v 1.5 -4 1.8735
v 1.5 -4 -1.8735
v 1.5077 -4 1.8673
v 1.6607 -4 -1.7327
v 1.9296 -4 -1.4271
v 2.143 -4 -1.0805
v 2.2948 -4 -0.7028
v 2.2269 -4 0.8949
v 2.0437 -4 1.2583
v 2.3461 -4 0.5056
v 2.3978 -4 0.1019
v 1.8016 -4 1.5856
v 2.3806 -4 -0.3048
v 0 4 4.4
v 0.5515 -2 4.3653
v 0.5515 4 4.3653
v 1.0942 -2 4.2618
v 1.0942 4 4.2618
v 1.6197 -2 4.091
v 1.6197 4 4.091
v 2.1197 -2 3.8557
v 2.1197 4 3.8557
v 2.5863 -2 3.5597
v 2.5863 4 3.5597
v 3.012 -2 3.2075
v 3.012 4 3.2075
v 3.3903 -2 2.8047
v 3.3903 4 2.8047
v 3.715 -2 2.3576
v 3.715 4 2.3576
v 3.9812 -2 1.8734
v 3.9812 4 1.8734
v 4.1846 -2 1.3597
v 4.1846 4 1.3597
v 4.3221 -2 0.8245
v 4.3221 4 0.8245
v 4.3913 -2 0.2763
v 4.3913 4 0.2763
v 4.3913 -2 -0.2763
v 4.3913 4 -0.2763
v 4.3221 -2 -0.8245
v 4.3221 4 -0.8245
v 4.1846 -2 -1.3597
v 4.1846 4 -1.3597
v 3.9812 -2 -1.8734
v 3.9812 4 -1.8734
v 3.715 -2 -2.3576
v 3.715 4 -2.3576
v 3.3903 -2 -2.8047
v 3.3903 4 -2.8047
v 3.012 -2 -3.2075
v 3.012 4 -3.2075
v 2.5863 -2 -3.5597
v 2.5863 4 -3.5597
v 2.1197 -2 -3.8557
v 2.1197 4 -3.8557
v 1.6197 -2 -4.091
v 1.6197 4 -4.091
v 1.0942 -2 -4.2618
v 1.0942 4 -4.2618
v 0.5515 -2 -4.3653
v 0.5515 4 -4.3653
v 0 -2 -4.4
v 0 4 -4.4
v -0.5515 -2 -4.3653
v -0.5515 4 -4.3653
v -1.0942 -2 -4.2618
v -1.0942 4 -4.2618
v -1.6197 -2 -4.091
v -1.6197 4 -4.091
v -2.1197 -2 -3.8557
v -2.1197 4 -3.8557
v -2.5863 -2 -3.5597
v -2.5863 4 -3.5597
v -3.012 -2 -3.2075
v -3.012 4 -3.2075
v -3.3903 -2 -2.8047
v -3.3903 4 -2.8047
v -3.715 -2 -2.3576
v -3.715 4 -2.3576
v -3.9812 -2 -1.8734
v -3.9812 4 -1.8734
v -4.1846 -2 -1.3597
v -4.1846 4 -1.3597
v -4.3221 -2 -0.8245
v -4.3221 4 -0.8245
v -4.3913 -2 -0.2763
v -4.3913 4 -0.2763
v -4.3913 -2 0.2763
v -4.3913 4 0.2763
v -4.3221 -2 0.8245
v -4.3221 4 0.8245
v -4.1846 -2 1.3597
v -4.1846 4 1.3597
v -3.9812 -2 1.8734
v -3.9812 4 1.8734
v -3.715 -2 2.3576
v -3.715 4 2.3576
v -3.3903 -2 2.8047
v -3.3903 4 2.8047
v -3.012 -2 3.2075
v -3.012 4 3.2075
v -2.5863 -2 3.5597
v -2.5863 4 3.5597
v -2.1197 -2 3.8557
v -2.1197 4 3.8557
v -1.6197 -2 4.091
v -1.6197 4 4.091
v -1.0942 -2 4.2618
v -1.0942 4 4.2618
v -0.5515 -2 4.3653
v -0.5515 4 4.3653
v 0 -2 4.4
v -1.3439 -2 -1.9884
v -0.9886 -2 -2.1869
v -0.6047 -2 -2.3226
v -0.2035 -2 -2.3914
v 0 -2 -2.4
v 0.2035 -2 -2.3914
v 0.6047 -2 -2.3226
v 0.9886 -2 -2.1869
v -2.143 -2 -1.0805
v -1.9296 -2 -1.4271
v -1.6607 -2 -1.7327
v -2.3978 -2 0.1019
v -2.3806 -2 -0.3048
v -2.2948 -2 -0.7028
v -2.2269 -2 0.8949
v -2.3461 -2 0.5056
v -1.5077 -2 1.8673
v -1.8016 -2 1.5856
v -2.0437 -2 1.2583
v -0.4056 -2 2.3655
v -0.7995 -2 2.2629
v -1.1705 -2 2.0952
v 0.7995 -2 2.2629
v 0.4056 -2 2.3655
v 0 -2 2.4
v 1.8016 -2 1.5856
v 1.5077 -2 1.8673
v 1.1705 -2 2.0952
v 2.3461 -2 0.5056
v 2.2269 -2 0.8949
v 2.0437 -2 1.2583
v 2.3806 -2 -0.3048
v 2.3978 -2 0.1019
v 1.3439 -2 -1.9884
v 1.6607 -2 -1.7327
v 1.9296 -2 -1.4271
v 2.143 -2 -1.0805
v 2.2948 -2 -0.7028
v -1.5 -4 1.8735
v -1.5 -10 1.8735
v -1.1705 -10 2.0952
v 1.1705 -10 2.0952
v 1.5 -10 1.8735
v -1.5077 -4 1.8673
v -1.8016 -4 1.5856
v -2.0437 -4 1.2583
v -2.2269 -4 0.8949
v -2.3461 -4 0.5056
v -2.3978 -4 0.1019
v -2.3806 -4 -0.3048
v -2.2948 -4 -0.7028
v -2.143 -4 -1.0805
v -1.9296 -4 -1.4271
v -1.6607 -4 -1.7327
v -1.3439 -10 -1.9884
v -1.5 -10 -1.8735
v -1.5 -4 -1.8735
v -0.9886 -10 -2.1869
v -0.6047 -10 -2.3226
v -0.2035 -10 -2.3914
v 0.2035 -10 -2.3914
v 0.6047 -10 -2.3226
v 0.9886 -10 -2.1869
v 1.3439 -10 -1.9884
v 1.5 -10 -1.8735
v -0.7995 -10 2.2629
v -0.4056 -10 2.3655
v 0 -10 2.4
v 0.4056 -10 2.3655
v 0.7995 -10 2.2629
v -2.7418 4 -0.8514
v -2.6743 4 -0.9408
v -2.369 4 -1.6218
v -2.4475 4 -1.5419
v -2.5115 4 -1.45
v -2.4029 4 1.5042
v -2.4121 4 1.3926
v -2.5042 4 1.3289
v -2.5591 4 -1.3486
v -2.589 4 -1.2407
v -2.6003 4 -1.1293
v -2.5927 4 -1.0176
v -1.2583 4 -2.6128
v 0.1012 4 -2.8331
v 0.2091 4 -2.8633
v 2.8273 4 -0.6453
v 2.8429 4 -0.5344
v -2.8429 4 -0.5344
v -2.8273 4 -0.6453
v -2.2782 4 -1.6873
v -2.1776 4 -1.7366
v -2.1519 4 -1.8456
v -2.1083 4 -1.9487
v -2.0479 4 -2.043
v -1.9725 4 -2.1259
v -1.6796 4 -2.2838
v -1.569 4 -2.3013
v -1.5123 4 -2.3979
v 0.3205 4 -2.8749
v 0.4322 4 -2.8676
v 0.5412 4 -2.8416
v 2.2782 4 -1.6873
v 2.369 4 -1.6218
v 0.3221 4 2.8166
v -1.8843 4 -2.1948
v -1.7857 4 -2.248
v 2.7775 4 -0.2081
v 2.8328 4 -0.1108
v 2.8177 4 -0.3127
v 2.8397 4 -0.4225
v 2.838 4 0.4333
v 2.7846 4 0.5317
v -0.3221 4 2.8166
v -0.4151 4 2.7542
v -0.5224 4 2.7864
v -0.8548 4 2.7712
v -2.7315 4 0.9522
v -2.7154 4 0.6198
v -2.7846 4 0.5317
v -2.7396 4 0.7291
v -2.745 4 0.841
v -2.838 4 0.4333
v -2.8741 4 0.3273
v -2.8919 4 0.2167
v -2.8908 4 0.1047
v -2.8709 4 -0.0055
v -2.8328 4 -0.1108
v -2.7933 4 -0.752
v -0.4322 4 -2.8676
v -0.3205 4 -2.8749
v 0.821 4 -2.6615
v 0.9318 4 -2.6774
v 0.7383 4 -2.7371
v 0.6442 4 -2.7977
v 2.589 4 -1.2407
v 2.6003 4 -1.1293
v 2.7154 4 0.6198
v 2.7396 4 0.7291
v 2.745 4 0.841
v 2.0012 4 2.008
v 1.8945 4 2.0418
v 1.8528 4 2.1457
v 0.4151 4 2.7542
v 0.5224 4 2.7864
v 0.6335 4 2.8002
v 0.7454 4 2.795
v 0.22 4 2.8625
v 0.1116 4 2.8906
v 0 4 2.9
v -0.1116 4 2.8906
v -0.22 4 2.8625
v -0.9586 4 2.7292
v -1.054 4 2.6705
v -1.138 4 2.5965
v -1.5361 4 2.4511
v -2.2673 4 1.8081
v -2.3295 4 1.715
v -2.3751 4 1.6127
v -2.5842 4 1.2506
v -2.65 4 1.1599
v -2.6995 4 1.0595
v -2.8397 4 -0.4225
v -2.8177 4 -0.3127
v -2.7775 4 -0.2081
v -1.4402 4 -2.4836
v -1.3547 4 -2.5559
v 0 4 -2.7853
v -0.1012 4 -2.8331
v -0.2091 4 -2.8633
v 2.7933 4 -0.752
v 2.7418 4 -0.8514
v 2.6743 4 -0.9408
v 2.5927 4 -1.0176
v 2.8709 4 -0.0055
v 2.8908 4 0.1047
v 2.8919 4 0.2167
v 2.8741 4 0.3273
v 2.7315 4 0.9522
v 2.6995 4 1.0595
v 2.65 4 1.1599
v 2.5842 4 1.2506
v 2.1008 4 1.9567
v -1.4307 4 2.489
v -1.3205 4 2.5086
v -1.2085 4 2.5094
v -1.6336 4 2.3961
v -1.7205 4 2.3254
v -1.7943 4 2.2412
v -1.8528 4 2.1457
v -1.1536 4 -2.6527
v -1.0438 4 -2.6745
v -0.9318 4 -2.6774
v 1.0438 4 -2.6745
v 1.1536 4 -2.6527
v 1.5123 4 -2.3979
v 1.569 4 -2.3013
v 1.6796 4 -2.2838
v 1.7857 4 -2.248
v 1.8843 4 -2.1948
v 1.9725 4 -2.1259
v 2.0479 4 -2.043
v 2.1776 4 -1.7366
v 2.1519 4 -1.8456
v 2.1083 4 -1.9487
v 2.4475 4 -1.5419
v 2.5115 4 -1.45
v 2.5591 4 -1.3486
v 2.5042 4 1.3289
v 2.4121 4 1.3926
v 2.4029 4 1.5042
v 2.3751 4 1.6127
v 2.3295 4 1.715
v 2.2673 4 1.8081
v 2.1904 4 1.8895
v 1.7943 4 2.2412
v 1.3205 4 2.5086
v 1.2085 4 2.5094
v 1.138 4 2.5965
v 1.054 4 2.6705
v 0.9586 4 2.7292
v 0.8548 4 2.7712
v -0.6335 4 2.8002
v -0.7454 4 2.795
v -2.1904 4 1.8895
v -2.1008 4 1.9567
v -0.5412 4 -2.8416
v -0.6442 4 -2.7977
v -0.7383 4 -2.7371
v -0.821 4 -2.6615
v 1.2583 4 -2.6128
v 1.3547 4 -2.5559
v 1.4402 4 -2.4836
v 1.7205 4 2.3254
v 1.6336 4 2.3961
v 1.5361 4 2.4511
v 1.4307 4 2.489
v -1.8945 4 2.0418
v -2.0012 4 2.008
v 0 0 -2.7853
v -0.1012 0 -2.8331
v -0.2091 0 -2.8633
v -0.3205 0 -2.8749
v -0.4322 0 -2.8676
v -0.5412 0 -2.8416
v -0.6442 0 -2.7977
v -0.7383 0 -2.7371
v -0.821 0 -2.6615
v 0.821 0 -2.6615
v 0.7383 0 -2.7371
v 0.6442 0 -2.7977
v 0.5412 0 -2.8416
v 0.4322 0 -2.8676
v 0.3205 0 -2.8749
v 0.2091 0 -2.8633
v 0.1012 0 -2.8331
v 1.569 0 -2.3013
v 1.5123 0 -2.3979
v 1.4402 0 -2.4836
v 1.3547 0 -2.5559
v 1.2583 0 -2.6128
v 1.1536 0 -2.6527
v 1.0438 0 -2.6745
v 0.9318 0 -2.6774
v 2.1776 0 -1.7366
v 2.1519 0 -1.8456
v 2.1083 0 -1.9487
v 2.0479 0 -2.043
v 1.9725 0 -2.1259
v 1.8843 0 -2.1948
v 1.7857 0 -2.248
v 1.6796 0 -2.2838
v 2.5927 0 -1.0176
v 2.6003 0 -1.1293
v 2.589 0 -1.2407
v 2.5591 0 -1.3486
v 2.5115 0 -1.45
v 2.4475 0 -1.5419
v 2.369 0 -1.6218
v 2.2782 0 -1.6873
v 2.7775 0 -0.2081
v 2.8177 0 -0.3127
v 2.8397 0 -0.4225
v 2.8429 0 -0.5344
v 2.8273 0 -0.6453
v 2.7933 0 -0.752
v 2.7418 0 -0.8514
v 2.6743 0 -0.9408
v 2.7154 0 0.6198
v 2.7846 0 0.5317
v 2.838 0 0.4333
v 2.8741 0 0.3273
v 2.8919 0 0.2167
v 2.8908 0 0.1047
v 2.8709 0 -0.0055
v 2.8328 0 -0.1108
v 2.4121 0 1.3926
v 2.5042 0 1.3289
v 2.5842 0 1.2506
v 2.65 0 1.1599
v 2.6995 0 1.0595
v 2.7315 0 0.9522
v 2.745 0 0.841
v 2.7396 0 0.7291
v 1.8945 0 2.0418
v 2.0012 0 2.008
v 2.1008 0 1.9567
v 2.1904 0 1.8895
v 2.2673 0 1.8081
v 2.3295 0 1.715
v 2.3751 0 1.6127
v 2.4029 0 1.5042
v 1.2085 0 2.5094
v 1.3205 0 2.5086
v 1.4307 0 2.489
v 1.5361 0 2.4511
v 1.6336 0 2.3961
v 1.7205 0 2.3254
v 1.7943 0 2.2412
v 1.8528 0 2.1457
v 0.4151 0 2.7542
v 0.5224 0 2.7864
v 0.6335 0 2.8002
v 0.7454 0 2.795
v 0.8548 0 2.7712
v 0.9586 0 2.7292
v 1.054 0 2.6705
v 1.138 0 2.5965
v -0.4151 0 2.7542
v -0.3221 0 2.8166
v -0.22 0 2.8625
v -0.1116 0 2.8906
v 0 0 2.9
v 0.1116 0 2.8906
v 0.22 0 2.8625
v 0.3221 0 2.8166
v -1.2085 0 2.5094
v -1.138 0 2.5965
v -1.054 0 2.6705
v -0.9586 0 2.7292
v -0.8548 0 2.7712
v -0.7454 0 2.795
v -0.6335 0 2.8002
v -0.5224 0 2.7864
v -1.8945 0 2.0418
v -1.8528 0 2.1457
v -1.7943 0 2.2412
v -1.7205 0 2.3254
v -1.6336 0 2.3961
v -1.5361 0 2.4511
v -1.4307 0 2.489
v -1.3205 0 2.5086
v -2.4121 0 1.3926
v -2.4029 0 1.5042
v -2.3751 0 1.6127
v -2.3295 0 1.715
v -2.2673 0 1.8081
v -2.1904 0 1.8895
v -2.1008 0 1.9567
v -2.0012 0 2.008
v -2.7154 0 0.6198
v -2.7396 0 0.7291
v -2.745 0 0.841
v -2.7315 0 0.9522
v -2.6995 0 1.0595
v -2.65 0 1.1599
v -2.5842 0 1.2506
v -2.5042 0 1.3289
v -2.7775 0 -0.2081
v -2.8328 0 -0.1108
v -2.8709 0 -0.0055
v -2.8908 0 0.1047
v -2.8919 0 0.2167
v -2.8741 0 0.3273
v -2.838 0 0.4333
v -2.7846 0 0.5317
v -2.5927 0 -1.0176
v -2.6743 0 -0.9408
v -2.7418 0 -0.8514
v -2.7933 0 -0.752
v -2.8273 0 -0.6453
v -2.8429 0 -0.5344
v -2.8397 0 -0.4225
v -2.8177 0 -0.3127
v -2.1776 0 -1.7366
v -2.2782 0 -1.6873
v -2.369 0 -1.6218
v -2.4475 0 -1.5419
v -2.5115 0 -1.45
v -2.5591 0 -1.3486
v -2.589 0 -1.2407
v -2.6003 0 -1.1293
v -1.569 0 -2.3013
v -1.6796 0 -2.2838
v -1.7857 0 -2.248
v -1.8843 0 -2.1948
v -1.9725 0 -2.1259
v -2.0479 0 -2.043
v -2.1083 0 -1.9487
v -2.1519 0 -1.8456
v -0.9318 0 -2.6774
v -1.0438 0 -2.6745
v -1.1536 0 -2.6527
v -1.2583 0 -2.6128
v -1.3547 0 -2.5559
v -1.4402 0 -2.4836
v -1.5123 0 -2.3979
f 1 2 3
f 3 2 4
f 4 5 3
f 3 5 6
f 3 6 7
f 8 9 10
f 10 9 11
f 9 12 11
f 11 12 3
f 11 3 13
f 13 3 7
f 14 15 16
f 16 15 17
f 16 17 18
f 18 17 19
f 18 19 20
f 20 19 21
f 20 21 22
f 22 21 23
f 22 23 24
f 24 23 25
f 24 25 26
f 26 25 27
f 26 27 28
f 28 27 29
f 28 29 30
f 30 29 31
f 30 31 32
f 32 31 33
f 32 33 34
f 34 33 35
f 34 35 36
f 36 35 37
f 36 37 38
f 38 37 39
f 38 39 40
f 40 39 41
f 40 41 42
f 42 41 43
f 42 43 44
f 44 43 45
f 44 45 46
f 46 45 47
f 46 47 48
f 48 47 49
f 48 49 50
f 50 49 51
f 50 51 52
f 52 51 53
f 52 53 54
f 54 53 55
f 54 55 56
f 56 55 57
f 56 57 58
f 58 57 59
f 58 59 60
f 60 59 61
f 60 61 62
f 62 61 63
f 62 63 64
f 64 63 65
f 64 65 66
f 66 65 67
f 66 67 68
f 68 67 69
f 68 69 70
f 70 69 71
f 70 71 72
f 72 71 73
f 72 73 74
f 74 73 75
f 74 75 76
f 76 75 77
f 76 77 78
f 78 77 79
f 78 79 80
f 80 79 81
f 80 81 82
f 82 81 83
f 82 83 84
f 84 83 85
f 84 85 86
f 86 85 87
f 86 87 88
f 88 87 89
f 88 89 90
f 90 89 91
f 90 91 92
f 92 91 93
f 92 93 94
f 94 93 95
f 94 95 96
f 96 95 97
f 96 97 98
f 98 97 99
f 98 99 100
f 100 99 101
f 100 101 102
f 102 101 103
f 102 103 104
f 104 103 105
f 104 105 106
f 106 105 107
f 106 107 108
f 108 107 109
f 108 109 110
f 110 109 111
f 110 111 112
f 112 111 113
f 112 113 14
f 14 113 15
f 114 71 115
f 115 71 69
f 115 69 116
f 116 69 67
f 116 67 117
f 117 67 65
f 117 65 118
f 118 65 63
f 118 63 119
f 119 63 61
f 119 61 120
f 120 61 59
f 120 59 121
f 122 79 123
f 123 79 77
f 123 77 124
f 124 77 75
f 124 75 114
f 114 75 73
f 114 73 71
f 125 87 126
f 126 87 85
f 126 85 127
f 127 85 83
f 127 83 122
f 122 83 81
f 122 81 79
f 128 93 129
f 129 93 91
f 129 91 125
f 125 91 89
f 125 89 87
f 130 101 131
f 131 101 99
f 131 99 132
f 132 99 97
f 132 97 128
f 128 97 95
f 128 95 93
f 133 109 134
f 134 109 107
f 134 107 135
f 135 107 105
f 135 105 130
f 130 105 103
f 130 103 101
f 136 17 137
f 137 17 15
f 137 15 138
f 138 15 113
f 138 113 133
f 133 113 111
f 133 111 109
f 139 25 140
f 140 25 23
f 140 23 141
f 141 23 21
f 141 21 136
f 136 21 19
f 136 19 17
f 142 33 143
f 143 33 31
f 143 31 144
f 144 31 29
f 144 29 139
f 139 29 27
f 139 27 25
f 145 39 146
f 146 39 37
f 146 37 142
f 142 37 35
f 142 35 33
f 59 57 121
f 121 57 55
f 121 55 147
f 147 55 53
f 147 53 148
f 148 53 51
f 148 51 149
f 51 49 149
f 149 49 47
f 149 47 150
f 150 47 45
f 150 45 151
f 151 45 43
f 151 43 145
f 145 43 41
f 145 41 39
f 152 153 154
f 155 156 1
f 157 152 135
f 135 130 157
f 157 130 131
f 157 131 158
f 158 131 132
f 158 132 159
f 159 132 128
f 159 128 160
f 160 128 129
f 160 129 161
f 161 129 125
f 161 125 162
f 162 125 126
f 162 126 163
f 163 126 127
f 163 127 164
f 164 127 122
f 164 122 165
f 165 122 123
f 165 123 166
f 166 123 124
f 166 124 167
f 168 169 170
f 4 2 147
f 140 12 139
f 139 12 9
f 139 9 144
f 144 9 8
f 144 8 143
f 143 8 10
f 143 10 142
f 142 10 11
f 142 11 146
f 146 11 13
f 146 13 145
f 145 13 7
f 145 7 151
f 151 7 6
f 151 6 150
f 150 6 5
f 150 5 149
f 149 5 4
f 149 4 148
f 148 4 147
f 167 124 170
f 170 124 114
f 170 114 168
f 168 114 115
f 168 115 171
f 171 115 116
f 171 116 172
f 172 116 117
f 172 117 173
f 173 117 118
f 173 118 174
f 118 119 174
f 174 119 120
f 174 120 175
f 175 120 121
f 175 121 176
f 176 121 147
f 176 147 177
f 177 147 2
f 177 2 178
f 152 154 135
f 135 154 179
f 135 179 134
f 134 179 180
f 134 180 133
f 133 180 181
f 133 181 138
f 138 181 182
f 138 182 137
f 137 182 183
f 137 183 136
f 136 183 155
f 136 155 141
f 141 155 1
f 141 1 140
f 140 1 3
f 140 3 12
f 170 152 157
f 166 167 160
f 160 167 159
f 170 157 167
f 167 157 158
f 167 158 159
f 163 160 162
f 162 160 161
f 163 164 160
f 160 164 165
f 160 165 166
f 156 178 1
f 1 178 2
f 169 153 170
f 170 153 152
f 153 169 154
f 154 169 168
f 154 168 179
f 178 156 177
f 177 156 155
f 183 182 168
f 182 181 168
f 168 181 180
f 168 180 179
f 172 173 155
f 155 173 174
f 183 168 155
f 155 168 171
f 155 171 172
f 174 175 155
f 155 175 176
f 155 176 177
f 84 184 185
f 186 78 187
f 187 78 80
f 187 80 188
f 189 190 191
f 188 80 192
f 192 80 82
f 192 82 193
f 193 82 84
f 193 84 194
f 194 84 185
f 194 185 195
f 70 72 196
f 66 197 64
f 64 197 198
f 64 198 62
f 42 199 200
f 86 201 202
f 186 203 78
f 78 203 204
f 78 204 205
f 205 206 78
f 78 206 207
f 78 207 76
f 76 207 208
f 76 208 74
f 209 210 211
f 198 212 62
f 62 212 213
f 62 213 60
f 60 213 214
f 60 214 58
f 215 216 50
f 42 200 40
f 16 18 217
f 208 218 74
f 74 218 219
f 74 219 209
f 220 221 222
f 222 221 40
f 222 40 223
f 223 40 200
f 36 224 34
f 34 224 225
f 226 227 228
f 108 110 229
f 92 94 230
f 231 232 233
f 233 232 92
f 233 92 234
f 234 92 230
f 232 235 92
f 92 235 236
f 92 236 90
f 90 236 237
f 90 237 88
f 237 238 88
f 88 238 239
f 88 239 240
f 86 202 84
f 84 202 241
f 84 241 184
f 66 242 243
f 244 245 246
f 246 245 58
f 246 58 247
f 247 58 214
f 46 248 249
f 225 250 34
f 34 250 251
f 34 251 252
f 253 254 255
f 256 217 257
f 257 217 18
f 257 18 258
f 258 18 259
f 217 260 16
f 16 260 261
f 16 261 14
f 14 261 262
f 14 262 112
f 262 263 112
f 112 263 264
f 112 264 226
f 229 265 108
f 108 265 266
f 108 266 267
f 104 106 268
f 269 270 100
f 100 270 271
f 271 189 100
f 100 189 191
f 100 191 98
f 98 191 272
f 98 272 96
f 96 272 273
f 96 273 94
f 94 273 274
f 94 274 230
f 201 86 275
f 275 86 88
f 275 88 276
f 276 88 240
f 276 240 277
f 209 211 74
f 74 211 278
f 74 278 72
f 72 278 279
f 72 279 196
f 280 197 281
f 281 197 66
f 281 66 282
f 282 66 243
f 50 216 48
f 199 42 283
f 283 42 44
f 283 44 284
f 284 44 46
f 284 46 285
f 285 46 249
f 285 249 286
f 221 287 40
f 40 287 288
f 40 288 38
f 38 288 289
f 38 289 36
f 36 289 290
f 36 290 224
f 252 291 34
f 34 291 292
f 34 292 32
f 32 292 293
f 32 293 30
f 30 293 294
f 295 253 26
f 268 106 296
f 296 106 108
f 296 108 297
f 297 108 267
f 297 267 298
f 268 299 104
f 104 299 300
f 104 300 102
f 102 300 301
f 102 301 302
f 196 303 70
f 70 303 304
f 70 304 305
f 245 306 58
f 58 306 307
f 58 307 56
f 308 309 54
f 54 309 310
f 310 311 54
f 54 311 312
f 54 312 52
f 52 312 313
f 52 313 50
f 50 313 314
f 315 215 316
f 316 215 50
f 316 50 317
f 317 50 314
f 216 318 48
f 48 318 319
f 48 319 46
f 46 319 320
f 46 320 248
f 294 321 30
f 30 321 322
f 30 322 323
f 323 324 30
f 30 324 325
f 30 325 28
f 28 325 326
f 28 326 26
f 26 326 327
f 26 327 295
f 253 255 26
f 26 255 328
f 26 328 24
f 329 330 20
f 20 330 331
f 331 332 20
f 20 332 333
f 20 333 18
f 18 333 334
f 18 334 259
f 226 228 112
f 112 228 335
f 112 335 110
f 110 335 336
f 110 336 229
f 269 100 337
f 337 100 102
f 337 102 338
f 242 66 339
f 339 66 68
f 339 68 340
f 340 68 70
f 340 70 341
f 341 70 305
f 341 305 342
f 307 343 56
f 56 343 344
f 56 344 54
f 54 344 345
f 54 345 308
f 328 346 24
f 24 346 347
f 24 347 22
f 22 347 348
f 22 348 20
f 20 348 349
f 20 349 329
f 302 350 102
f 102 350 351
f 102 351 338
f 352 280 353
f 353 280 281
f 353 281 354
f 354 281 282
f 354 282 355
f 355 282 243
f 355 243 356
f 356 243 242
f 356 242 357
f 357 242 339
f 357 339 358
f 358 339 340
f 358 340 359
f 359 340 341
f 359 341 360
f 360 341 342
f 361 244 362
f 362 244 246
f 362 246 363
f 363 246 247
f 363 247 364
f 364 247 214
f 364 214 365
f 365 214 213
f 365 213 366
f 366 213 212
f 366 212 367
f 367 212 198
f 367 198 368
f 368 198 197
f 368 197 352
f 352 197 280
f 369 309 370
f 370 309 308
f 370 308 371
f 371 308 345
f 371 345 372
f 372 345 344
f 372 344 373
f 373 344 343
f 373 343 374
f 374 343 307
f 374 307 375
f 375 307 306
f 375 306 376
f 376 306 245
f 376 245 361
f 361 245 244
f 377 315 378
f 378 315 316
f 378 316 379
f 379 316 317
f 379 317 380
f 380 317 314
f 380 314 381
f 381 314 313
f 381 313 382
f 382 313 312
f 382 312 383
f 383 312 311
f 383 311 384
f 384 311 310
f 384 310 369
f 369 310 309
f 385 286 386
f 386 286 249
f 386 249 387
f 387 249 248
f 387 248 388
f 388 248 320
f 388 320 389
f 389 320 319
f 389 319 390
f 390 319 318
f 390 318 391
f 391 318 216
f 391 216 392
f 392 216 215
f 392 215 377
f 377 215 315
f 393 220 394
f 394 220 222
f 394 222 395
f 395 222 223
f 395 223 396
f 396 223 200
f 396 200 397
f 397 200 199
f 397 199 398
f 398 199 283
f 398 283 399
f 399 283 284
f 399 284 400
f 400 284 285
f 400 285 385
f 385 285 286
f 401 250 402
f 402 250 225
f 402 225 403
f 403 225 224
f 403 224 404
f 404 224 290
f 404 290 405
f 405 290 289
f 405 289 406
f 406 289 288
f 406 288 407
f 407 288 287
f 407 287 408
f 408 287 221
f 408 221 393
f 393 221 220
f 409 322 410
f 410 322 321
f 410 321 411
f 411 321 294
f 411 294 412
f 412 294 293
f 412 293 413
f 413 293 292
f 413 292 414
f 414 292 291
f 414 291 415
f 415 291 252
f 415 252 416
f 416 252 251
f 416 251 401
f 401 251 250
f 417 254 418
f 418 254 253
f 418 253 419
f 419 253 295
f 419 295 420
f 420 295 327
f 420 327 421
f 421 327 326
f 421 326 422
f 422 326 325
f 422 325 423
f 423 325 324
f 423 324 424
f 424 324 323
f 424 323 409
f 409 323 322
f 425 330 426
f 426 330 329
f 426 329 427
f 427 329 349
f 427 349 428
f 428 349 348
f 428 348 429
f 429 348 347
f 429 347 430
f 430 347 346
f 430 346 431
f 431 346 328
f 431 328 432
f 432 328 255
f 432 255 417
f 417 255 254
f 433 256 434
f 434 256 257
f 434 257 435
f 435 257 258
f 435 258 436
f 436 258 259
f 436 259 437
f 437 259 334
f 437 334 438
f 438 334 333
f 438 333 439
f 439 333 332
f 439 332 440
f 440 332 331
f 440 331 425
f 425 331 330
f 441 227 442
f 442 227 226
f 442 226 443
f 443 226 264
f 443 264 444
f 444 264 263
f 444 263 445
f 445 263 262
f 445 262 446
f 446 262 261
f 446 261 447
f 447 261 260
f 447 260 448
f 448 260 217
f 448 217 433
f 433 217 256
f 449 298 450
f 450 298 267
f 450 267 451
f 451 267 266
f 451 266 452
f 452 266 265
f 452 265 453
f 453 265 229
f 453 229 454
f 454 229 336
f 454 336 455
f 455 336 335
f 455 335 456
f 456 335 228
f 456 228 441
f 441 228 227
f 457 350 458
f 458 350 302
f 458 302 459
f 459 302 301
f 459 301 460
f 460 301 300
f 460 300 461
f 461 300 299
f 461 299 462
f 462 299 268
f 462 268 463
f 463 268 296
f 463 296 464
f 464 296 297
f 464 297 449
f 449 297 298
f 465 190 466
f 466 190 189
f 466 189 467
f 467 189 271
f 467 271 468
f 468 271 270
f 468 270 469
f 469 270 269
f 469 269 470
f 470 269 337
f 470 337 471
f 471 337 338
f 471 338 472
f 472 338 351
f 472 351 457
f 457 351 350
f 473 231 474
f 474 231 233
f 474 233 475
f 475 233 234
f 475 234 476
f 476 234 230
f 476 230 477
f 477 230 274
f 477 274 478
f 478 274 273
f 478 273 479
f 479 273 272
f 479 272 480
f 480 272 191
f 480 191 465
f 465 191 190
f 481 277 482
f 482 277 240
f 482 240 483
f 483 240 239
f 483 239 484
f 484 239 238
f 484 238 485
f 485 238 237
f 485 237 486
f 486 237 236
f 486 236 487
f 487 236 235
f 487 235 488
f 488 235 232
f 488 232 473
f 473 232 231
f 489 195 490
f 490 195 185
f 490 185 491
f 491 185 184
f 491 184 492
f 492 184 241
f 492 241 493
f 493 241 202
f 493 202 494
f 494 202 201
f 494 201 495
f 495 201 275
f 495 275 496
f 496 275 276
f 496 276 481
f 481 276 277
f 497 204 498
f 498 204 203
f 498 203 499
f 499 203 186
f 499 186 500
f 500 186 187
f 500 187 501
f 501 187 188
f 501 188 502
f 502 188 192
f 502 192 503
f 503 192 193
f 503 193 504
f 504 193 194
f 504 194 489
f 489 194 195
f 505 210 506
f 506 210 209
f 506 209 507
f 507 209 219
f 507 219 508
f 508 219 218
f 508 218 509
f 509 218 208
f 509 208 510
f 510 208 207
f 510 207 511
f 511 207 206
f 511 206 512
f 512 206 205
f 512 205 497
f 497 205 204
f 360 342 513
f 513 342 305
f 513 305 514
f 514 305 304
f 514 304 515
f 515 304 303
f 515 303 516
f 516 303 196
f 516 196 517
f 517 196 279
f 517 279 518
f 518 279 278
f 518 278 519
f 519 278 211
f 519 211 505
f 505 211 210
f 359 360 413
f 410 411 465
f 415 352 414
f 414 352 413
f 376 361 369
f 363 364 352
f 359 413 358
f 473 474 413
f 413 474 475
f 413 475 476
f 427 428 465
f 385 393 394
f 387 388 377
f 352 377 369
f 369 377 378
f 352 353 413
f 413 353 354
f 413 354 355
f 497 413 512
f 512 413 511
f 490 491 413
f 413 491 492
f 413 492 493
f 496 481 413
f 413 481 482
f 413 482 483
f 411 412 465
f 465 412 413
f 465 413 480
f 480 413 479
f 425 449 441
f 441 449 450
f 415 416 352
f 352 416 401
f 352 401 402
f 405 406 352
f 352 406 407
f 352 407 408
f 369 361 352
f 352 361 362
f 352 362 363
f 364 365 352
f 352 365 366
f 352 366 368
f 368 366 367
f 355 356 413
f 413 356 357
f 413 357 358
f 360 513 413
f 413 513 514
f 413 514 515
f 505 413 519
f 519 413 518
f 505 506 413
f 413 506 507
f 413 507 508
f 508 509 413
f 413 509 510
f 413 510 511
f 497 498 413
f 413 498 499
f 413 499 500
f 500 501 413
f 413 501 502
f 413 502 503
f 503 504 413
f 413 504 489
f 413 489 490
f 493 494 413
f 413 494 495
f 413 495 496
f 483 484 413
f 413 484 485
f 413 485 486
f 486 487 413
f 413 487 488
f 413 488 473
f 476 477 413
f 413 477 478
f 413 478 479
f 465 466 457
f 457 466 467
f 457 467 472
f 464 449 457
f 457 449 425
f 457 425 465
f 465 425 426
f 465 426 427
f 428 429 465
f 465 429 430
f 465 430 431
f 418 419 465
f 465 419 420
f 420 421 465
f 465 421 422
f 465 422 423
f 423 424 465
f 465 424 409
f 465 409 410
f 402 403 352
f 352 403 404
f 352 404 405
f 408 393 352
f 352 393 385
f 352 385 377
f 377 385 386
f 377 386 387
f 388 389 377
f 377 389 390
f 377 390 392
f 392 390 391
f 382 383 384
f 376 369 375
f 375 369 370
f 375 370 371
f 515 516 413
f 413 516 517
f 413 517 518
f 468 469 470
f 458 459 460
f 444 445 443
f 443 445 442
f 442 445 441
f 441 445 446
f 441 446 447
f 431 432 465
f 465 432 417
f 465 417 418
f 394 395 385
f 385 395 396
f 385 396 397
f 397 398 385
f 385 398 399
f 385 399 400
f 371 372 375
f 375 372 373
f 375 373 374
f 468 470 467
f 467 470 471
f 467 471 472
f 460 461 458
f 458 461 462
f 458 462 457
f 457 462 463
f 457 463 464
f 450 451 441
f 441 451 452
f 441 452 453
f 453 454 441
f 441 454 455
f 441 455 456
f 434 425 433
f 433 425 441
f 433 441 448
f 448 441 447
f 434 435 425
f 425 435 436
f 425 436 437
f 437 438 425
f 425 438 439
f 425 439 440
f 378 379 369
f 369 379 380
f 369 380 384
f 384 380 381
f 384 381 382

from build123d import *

# Parameters (mm, degrees)
SKETCH1_R           = 3.95
BOSS_EXTRUDE1_DEPTH = 4
SKETCH2_R           = 4.4
BOSS_EXTRUDE2_DEPTH = 2
SKETCH4_R           = 2.4
BOSS_EXTRUDE3_DEPTH = 2
BOSS_EXTRUDE4_DEPTH = 6
SKETCH6_R           = 4.4
SKETCH6_R_2         = 3.95
BOSS_EXTRUDE5_DEPTH = 4
CUT_EXTRUDE1_START  = -4
CUT_EXTRUDE1_DEPTH  = 4
CUT_EXTRUDE2_START  = -4
CUT_EXTRUDE2_DEPTH  = 4
BOSS_EXTRUDE6_START = -4
BOSS_EXTRUDE6_DEPTH = 4


with BuildPart() as part:
    # Sketch1 → Boss-Extrude1 (new body)
    with BuildSketch(Plane(origin=(0, 0, 0), x_dir=(1, 0, 0), z_dir=(0, 1, 0))):
        Circle(SKETCH1_R)
        with BuildLine():
            ThreePointArc((-0.166646614, 2.345141313), (-0.092401566, 2.286261662), (0, 2.2652595))
            ThreePointArc((0, 2.2652595), (0.092401566, 2.286261662), (0.166646614, 2.345141313))
            ThreePointArc((0.166646614, 2.345141313), (0.365153552, 2.422635524), (0.531999564, 2.290073216))
            ThreePointArc((0.531999564, 2.290073216), (0.585591031, 2.211925311), (0.667696959, 2.164620376))
            ThreePointArc((0.667696959, 2.164620376), (0.762183879, 2.157453631), (0.850485509, 2.191833312))
            ThreePointArc((0.850485509, 2.191833312), (1.063015161, 2.207373726), (1.183375246, 2.031522064))
            ThreePointArc((1.183375246, 2.031522064), (1.211551295, 1.941049689), (1.276066113, 1.871645232))
            ThreePointArc((1.276066113, 1.871645232), (1.364242809, 1.836946378), (1.458755034, 1.843771303))
            ThreePointArc((1.458755034, 1.843771303), (1.666423208, 1.795977086), (1.729602845, 1.592461261))
            ThreePointArc((1.729602845, 1.592461261), (1.72985991, 1.497703284), (1.771051193, 1.412366197))
            ThreePointArc((1.771051193, 1.412366197), (1.845082779, 1.353218377), (1.937407773, 1.331882123))
            ThreePointArc((1.937407773, 1.331882123), (2.121762239, 1.225), (2.12214764, 1.011903287))
            ThreePointArc((2.12214764, 1.011903287), (2.094462881, 0.92127937), (2.108670602, 0.827592226))
            ThreePointArc((2.108670602, 0.827592226), (2.161979047, 0.749250985), (2.243913329, 0.701649371))
            ThreePointArc((2.243913329, 0.701649371), (2.388573385, 0.545176288), (2.326130305, 0.341433266))
            ThreePointArc((2.326130305, 0.341433266), (2.272963633, 0.262995741), (2.258925375, 0.169283054))
            ThreePointArc((2.258925375, 0.169283054), (2.286773988, 0.078709355), (2.351037339, 0.009071994))
            ThreePointArc((2.351037339, 0.009071994), (2.443149303, -0.183088729), (2.323426084, -0.3593746))
            ThreePointArc((2.323426084, -0.3593746), (2.249501592, -0.418656214), (2.208464714, -0.504067659))
            ThreePointArc((2.208464714, -0.504067659), (2.208379026, -0.598825947), (2.249261363, -0.68431147))
            ThreePointArc((2.249261363, -0.68431147), (2.280640684, -0.89508551), (2.114275259, -1.028250455))
            ThreePointArc((2.114275259, -1.028250455), (2.026161462, -1.063108727), (1.961772273, -1.13262975))
            ThreePointArc((1.961772273, -1.13262975), (1.933759896, -1.223152935), (1.947628645, -1.316890857))
            ThreePointArc((1.947628645, -1.316890857), (1.915487132, -1.527550015), (1.717261799, -1.605761745))
            ThreePointArc((1.717261799, -1.605761745), (1.622787995, -1.613099364), (1.540767756, -1.660552716))
            ThreePointArc((1.540767756, -1.660552716), (1.487317713, -1.738797417), (1.472940575, -1.832458712))
            ThreePointArc((1.472940575, -1.832458712), (1.380134142, -2.024284997), (1.167662092, -2.040594058))
            ThreePointArc((1.167662092, -2.040594058), (1.075222693, -2.019759044), (0.982859262, -2.040928287))
            ThreePointArc((0.982859262, -2.040928287), (0.908720824, -2.099942118), (0.86737527, -2.185204569))
            ThreePointArc((0.86737527, -2.185204569), (0.722150177, -2.341153374), (0.514310485, -2.294110633))
            ThreePointArc((0.514310485, -2.294110633), (0.432119136, -2.246954269), (0.337619409, -2.239958423))
            ThreePointArc((0.337619409, -2.239958423), (0.249380102, -2.274497747), (0.184739867, -2.343785411))
            ThreePointArc((0.184739867, -2.343785411), (0, -2.45), (-0.184739867, -2.343785411))
            ThreePointArc((-0.184739867, -2.343785411), (-0.249380102, -2.274497747), (-0.337619409, -2.239958423))
            ThreePointArc((-0.337619409, -2.239958423), (-0.432119136, -2.246954269), (-0.514310485, -2.294110633))
            ThreePointArc((-0.514310485, -2.294110633), (-0.722150177, -2.341153374), (-0.86737527, -2.185204569))
            ThreePointArc((-0.86737527, -2.185204569), (-0.908720824, -2.099942118), (-0.982859262, -2.040928287))
            ThreePointArc((-0.982859262, -2.040928287), (-1.075222693, -2.019759044), (-1.167662092, -2.040594058))
            ThreePointArc((-1.167662092, -2.040594058), (-1.380134142, -2.024284997), (-1.472940575, -1.832458712))
            ThreePointArc((-1.472940575, -1.832458712), (-1.487317713, -1.738797417), (-1.540767756, -1.660552716))
            ThreePointArc((-1.540767756, -1.660552716), (-1.622787995, -1.613099364), (-1.717261799, -1.605761745))
            ThreePointArc((-1.717261799, -1.605761745), (-1.915487132, -1.527550015), (-1.947628645, -1.316890857))
            ThreePointArc((-1.947628645, -1.316890857), (-1.933759896, -1.223152935), (-1.961772273, -1.13262975))
            ThreePointArc((-1.961772273, -1.13262975), (-2.026161462, -1.063108727), (-2.114275259, -1.028250455))
            ThreePointArc((-2.114275259, -1.028250455), (-2.280640684, -0.89508551), (-2.249261363, -0.68431147))
            ThreePointArc((-2.249261363, -0.68431147), (-2.208379026, -0.598825947), (-2.208464714, -0.504067659))
            ThreePointArc((-2.208464714, -0.504067659), (-2.249501592, -0.418656214), (-2.323426084, -0.3593746))
            ThreePointArc((-2.323426084, -0.3593746), (-2.443149303, -0.183088729), (-2.351037339, 0.009071994))
            ThreePointArc((-2.351037339, 0.009071994), (-2.286773988, 0.078709355), (-2.258925375, 0.169283054))
            ThreePointArc((-2.258925375, 0.169283054), (-2.272963633, 0.262995741), (-2.326130305, 0.341433266))
            ThreePointArc((-2.326130305, 0.341433266), (-2.388573385, 0.545176288), (-2.243913329, 0.701649371))
            ThreePointArc((-2.243913329, 0.701649371), (-2.161979047, 0.749250985), (-2.108670602, 0.827592226))
            ThreePointArc((-2.108670602, 0.827592226), (-2.094462881, 0.92127937), (-2.12214764, 1.011903287))
            ThreePointArc((-2.12214764, 1.011903287), (-2.121762239, 1.225), (-1.937407773, 1.331882123))
            ThreePointArc((-1.937407773, 1.331882123), (-1.845082779, 1.353218377), (-1.771051193, 1.412366197))
            ThreePointArc((-1.771051193, 1.412366197), (-1.72985991, 1.497703284), (-1.729602845, 1.592461261))
            ThreePointArc((-1.729602845, 1.592461261), (-1.666423208, 1.795977086), (-1.458755034, 1.843771303))
            ThreePointArc((-1.458755034, 1.843771303), (-1.364242809, 1.836946378), (-1.276066113, 1.871645232))
            ThreePointArc((-1.276066113, 1.871645232), (-1.211551295, 1.941049689), (-1.183375246, 2.031522064))
            ThreePointArc((-1.183375246, 2.031522064), (-1.063015161, 2.207373726), (-0.850485509, 2.191833312))
            ThreePointArc((-0.850485509, 2.191833312), (-0.762183879, 2.157453631), (-0.667696959, 2.164620376))
            ThreePointArc((-0.667696959, 2.164620376), (-0.585591031, 2.211925311), (-0.531999564, 2.290073216))
            ThreePointArc((-0.531999564, 2.290073216), (-0.365153552, 2.422635524), (-0.166646614, 2.345141313))
        make_face(mode=Mode.SUBTRACT)
    extrude(amount=BOSS_EXTRUDE1_DEPTH)

    # Sketch2 → Boss-Extrude2 (add)
    with BuildSketch(Plane.XZ):
        Circle(SKETCH2_R)
    extrude(amount=BOSS_EXTRUDE2_DEPTH)

    # Sketch4 → Boss-Extrude3 (add)
    with BuildSketch(Plane.XZ.offset(2)):
        Circle(SKETCH4_R)
    extrude(amount=BOSS_EXTRUDE3_DEPTH)

    # Sketch5 → Boss-Extrude4 (add)
    with BuildSketch(Plane.XZ.offset(4)):
        with BuildLine():
            ThreePointArc((1.5, 1.8734994), (0, 2.4), (-1.5, 1.8734994))
            Line((-1.5, 1.8734994), (-1.5, -1.8734994))
            ThreePointArc((-1.5, -1.8734994), (0, -2.4), (1.5, -1.8734994))
            Line((1.5, -1.8734994), (1.5, 1.8734994))
        make_face()
    extrude(amount=BOSS_EXTRUDE4_DEPTH)

    # Sketch6 → Boss-Extrude5 (add)
    with BuildSketch(Plane(origin=(0, 0, 0), x_dir=(1, 0, 0), z_dir=(0, 1, 0))):
        Circle(SKETCH6_R)
        Circle(SKETCH6_R_2, mode=Mode.SUBTRACT)
    extrude(amount=BOSS_EXTRUDE5_DEPTH)

    # Sketch8 → Cut-Extrude1 (cut)
    with BuildSketch(Plane(origin=(0, 4, 0), x_dir=(1, 0, 0), z_dir=(0, 1, 0)).offset(CUT_EXTRUDE1_START)):
        with BuildLine():
            ThreePointArc((2.526654558, 0.189346583), (2.629361338, 0.382268482), (2.632305363, 0.600806522))
            ThreePointArc((2.632305363, 0.600806522), (2.534832787, 0.796425127), (2.3585915, 0.92567895))
            ThreePointArc((2.3585915, 0.92567895), (2.33826859, 1.35), (1.980957237, 1.579760681))
            ThreePointArc((1.980957237, 1.579760681), (1.836466392, 1.979240054), (1.42730623, 2.093473742))
            ThreePointArc((1.42730623, 2.093473742), (1.171486096, 2.432615943), (0.746832801, 2.421172474))
            ThreePointArc((0.746832801, 2.421172474), (0.402414119, 2.669843231), (0, 2.533739407))
            ThreePointArc((0, 2.533739407), (-0.402414119, 2.669843231), (-0.746832801, 2.421172474))
            ThreePointArc((-0.746832801, 2.421172474), (-1.171486096, 2.432615943), (-1.42730623, 2.093473742))
            ThreePointArc((-1.42730623, 2.093473742), (-1.836466392, 1.979240054), (-1.980957237, 1.579760681))
            ThreePointArc((-1.980957237, 1.579760681), (-2.33826859, 1.35), (-2.3585915, 0.92567895))
            ThreePointArc((-2.3585915, 0.92567895), (-2.632305363, 0.600806522), (-2.526654558, 0.189346583))
            ThreePointArc((-2.526654558, 0.189346583), (-2.692450252, -0.201771253), (-2.47021327, -0.563810059))
            ThreePointArc((-2.47021327, -0.563810059), (-2.513359121, -0.986420766), (-2.194282693, -1.266869704))
            ThreePointArc((-2.194282693, -1.266869704), (-2.110945003, -1.683422465), (-1.723380469, -1.857362415))
            ThreePointArc((-1.723380469, -1.857362415), (-1.520964157, -2.230844691), (-1.099348328, -2.282820325))
            ThreePointArc((-1.099348328, -2.282820325), (-0.795838971, -2.580046576), (-0.377634263, -2.505439631))
            ThreePointArc((-0.377634263, -2.505439631), (0, -2.7), (0.377634263, -2.505439631))
            ThreePointArc((0.377634263, -2.505439631), (0.795838971, -2.580046576), (1.099348328, -2.282820325))
            ThreePointArc((1.099348328, -2.282820325), (1.520964157, -2.230844691), (1.723380469, -1.857362415))
            ThreePointArc((1.723380469, -1.857362415), (2.110945003, -1.683422465), (2.194282693, -1.266869704))
            ThreePointArc((2.194282693, -1.266869704), (2.513359121, -0.986420766), (2.47021327, -0.563810059))
            ThreePointArc((2.47021327, -0.563810059), (2.692450252, -0.201771253), (2.526654558, 0.189346583))
        make_face()
        with BuildLine():
            ThreePointArc((2.243913329, 0.701649371), (2.337130966, 0.642723516), (2.388573385, 0.545176288))
            ThreePointArc((2.388573385, 0.545176288), (2.384549523, 0.434969243), (2.326130305, 0.341433266))
            ThreePointArc((2.326130305, 0.341433266), (2.258925375, 0.169283054), (2.351037339, 0.009071994))
            ThreePointArc((2.351037339, 0.009071994), (2.443149303, -0.183088729), (2.323426084, -0.3593746))
            ThreePointArc((2.323426084, -0.3593746), (2.208464714, -0.504067659), (2.249261363, -0.68431147))
            ThreePointArc((2.249261363, -0.68431147), (2.280640684, -0.89508551), (2.114275259, -1.028250455))
            ThreePointArc((2.114275259, -1.028250455), (1.961772273, -1.13262975), (1.947628645, -1.316890857))
            ThreePointArc((1.947628645, -1.316890857), (1.915487132, -1.527550015), (1.717261799, -1.605761745))
            ThreePointArc((1.717261799, -1.605761745), (1.540767756, -1.660552716), (1.472940575, -1.832458712))
            ThreePointArc((1.472940575, -1.832458712), (1.380134142, -2.024284997), (1.167662092, -2.040594058))
            ThreePointArc((1.167662092, -2.040594058), (0.982859262, -2.040928287), (0.86737527, -2.185204569))
            ThreePointArc((0.86737527, -2.185204569), (0.722150177, -2.341153374), (0.514310485, -2.294110633))
            ThreePointArc((0.514310485, -2.294110633), (0.337619409, -2.239958423), (0.184739867, -2.343785411))
            ThreePointArc((0.184739867, -2.343785411), (0, -2.45), (-0.184739867, -2.343785411))
            ThreePointArc((-0.184739867, -2.343785411), (-0.337619409, -2.239958423), (-0.514310485, -2.294110633))
            ThreePointArc((-0.514310485, -2.294110633), (-0.722150177, -2.341153374), (-0.86737527, -2.185204569))
            ThreePointArc((-0.86737527, -2.185204569), (-0.982859262, -2.040928287), (-1.167662092, -2.040594058))
            ThreePointArc((-1.167662092, -2.040594058), (-1.380134142, -2.024284997), (-1.472940575, -1.832458712))
            ThreePointArc((-1.472940575, -1.832458712), (-1.540767756, -1.660552716), (-1.717261799, -1.605761745))
            ThreePointArc((-1.717261799, -1.605761745), (-1.915487132, -1.527550015), (-1.947628645, -1.316890857))
            ThreePointArc((-1.947628645, -1.316890857), (-1.961772273, -1.13262975), (-2.114275259, -1.028250455))
            ThreePointArc((-2.114275259, -1.028250455), (-2.280640684, -0.89508551), (-2.249261363, -0.68431147))
            ThreePointArc((-2.249261363, -0.68431147), (-2.208464714, -0.504067659), (-2.323426084, -0.3593746))
            ThreePointArc((-2.323426084, -0.3593746), (-2.443149303, -0.183088729), (-2.351037339, 0.009071994))
            ThreePointArc((-2.351037339, 0.009071994), (-2.258925375, 0.169283054), (-2.326130305, 0.341433266))
            ThreePointArc((-2.326130305, 0.341433266), (-2.388573385, 0.545176288), (-2.243913329, 0.701649371))
            ThreePointArc((-2.243913329, 0.701649371), (-2.108670602, 0.827592226), (-2.12214764, 1.011903287))
            ThreePointArc((-2.12214764, 1.011903287), (-2.121762239, 1.225), (-1.937407773, 1.331882123))
            ThreePointArc((-1.937407773, 1.331882123), (-1.771051193, 1.412366197), (-1.729602845, 1.592461261))
            ThreePointArc((-1.729602845, 1.592461261), (-1.666423208, 1.795977086), (-1.458755034, 1.843771303))
            ThreePointArc((-1.458755034, 1.843771303), (-1.276066113, 1.871645232), (-1.183375246, 2.031522064))
            ThreePointArc((-1.183375246, 2.031522064), (-1.063015161, 2.207373726), (-0.850485509, 2.191833312))
            ThreePointArc((-0.850485509, 2.191833312), (-0.667696959, 2.164620376), (-0.531999564, 2.290073216))
            ThreePointArc((-0.531999564, 2.290073216), (-0.365153552, 2.422635524), (-0.166646614, 2.345141313))
            ThreePointArc((-0.166646614, 2.345141313), (0, 2.2652595), (0.166646614, 2.345141313))
            ThreePointArc((0.166646614, 2.345141313), (0.365153552, 2.422635524), (0.531999564, 2.290073216))
            ThreePointArc((0.531999564, 2.290073216), (0.667696959, 2.164620376), (0.850485509, 2.191833312))
            ThreePointArc((0.850485509, 2.191833312), (1.063015161, 2.207373726), (1.183375246, 2.031522064))
            ThreePointArc((1.183375246, 2.031522064), (1.276066113, 1.871645232), (1.458755034, 1.843771303))
            ThreePointArc((1.458755034, 1.843771303), (1.666423208, 1.795977086), (1.729602845, 1.592461261))
            ThreePointArc((1.729602845, 1.592461261), (1.771051193, 1.412366197), (1.937407773, 1.331882123))
            ThreePointArc((1.937407773, 1.331882123), (2.121762239, 1.225), (2.12214764, 1.011903287))
            ThreePointArc((2.12214764, 1.011903287), (2.108670602, 0.827592226), (2.243913329, 0.701649371))
        make_face(mode=Mode.SUBTRACT)
    extrude(amount=CUT_EXTRUDE1_DEPTH, mode=Mode.SUBTRACT)

    # Sketch8<3> → Cut-Extrude2 (cut)
    with BuildSketch(Plane(origin=(0, 4, 0), x_dir=(1, 0, 0), z_dir=(0, 1, 0)).offset(CUT_EXTRUDE2_START)):
        with BuildLine():
            ThreePointArc((-1.755056494, 2.574195088), (-2.176552761, 2.34576599), (-2.43584158, 1.94251884))
            ThreePointArc((-2.43584158, 1.94251884), (-2.771281292, 1.6), (-2.900191453, 1.138241268))
            ThreePointArc((-2.900191453, 1.138241268), (-3.119769319, 0.712066989), (-3.106846588, 0.232825965))
            ThreePointArc((-3.106846588, 0.232825965), (-3.191052151, -0.239136299), (-3.037444769, -0.693276947))
            ThreePointArc((-3.037444769, -0.693276947), (-2.978795996, -1.169091278), (-2.698152653, -1.55777916))
            ThreePointArc((-2.698152653, -1.55777916), (-2.501860744, -1.995167366), (-2.119117833, -2.283865859))
            ThreePointArc((-2.119117833, -2.283865859), (-1.802624186, -2.643964078), (-1.351790094, -2.807021053))
            ThreePointArc((-1.351790094, -2.807021053), (-0.943216558, -3.057832979), (-0.464349872, -3.080760108))
            ThreePointArc((-0.464349872, -3.080760108), (0, -3.2), (0.464349872, -3.080760108))
            ThreePointArc((0.464349872, -3.080760108), (0.943216558, -3.057832979), (1.351790094, -2.807021053))
            ThreePointArc((1.351790094, -2.807021053), (1.802624186, -2.643964078), (2.119117833, -2.283865859))
            ThreePointArc((2.119117833, -2.283865859), (2.501860744, -1.995167366), (2.698152653, -1.55777916))
            ThreePointArc((2.698152653, -1.55777916), (2.978795996, -1.169091278), (3.037444769, -0.693276947))
            ThreePointArc((3.037444769, -0.693276947), (3.191052151, -0.239136299), (3.106846588, 0.232825965))
            ThreePointArc((3.106846588, 0.232825965), (3.119769319, 0.712066989), (2.900191453, 1.138241268))
            ThreePointArc((2.900191453, 1.138241268), (2.771281292, 1.6), (2.43584158, 1.94251884))
            ThreePointArc((2.43584158, 1.94251884), (2.176552761, 2.34576599), (1.755056494, 2.574195088))
            ThreePointArc((1.755056494, 2.574195088), (1.388427965, 2.883100377), (0.918326936, 2.977142806))
            ThreePointArc((0.918326936, 2.977142806), (0.476935252, 3.164258644), (0, 3.11555832))
            ThreePointArc((0, 3.11555832), (-0.476935252, 3.164258644), (-0.918326936, 2.977142806))
            ThreePointArc((-0.918326936, 2.977142806), (-1.388427965, 2.883100377), (-1.755056494, 2.574195088))
        make_face()
        with BuildLine():
            ThreePointArc((2.3585915, 0.92567895), (2.534832787, 0.796425127), (2.632305363, 0.600806522))
            ThreePointArc((2.632305363, 0.600806522), (2.629361338, 0.382268482), (2.526654558, 0.189346583))
            ThreePointArc((2.526654558, 0.189346583), (2.692450252, -0.201771253), (2.47021327, -0.563810059))
            ThreePointArc((2.47021327, -0.563810059), (2.513359121, -0.986420766), (2.194282693, -1.266869704))
            ThreePointArc((2.194282693, -1.266869704), (2.110945003, -1.683422465), (1.723380469, -1.857362415))
            ThreePointArc((1.723380469, -1.857362415), (1.520964157, -2.230844691), (1.099348328, -2.282820325))
            ThreePointArc((1.099348328, -2.282820325), (0.795838971, -2.580046576), (0.377634263, -2.505439631))
            ThreePointArc((0.377634263, -2.505439631), (0, -2.7), (-0.377634263, -2.505439631))
            ThreePointArc((-0.377634263, -2.505439631), (-0.795838971, -2.580046576), (-1.099348328, -2.282820325))
            ThreePointArc((-1.099348328, -2.282820325), (-1.520964157, -2.230844691), (-1.723380469, -1.857362415))
            ThreePointArc((-1.723380469, -1.857362415), (-2.110945003, -1.683422465), (-2.194282693, -1.266869704))
            ThreePointArc((-2.194282693, -1.266869704), (-2.513359121, -0.986420766), (-2.47021327, -0.563810059))
            ThreePointArc((-2.47021327, -0.563810059), (-2.692450252, -0.201771253), (-2.526654558, 0.189346583))
            ThreePointArc((-2.526654558, 0.189346583), (-2.632305363, 0.600806522), (-2.3585915, 0.92567895))
            ThreePointArc((-2.3585915, 0.92567895), (-2.33826859, 1.35), (-1.980957237, 1.579760681))
            ThreePointArc((-1.980957237, 1.579760681), (-1.836466392, 1.979240054), (-1.42730623, 2.093473742))
            ThreePointArc((-1.42730623, 2.093473742), (-1.171486096, 2.432615943), (-0.746832801, 2.421172474))
            ThreePointArc((-0.746832801, 2.421172474), (-0.402414119, 2.669843231), (0, 2.533739407))
            ThreePointArc((0, 2.533739407), (0.402414119, 2.669843231), (0.746832801, 2.421172474))
            ThreePointArc((0.746832801, 2.421172474), (1.171486096, 2.432615943), (1.42730623, 2.093473742))
            ThreePointArc((1.42730623, 2.093473742), (1.836466392, 1.979240054), (1.980957237, 1.579760681))
            ThreePointArc((1.980957237, 1.579760681), (2.33826859, 1.35), (2.3585915, 0.92567895))
        make_face(mode=Mode.SUBTRACT)
    extrude(amount=CUT_EXTRUDE2_DEPTH, mode=Mode.SUBTRACT)

    # Sketch9 → Boss-Extrude6 (add)
    with BuildSketch(Plane(origin=(0, 4, 0), x_dir=(1, 0, 0), z_dir=(0, 1, 0)).offset(BOSS_EXTRUDE6_START)):
        with BuildLine():
            ThreePointArc((-0.918326936, 2.977142806), (-1.388427965, 2.883100377), (-1.755056494, 2.574195088))
            ThreePointArc((-1.755056494, 2.574195088), (-2.176552761, 2.34576599), (-2.43584158, 1.94251884))
            ThreePointArc((-2.43584158, 1.94251884), (-2.771281292, 1.6), (-2.900191453, 1.138241268))
            ThreePointArc((-2.900191453, 1.138241268), (-3.119769319, 0.712066989), (-3.106846588, 0.232825965))
            ThreePointArc((-3.106846588, 0.232825965), (-3.191052151, -0.239136299), (-3.037444769, -0.693276947))
            ThreePointArc((-3.037444769, -0.693276947), (-2.978795996, -1.169091278), (-2.698152653, -1.55777916))
            ThreePointArc((-2.698152653, -1.55777916), (-2.501860744, -1.995167366), (-2.119117833, -2.283865859))
            ThreePointArc((-2.119117833, -2.283865859), (-1.802624186, -2.643964078), (-1.351790094, -2.807021053))
            ThreePointArc((-1.351790094, -2.807021053), (-0.943216558, -3.057832979), (-0.464349872, -3.080760108))
            ThreePointArc((-0.464349872, -3.080760108), (0, -3.2), (0.464349872, -3.080760108))
            ThreePointArc((0.464349872, -3.080760108), (0.943216558, -3.057832979), (1.351790094, -2.807021053))
            ThreePointArc((1.351790094, -2.807021053), (1.802624186, -2.643964078), (2.119117833, -2.283865859))
            ThreePointArc((2.119117833, -2.283865859), (2.501860744, -1.995167366), (2.698152653, -1.55777916))
            ThreePointArc((2.698152653, -1.55777916), (2.978795996, -1.169091278), (3.037444769, -0.693276947))
            ThreePointArc((3.037444769, -0.693276947), (3.191052151, -0.239136299), (3.106846588, 0.232825965))
            ThreePointArc((3.106846588, 0.232825965), (3.119769319, 0.712066989), (2.900191453, 1.138241268))
            ThreePointArc((2.900191453, 1.138241268), (2.771281292, 1.6), (2.43584158, 1.94251884))
            ThreePointArc((2.43584158, 1.94251884), (2.176552761, 2.34576599), (1.755056494, 2.574195088))
            ThreePointArc((1.755056494, 2.574195088), (1.388427965, 2.883100377), (0.918326936, 2.977142806))
            ThreePointArc((0.918326936, 2.977142806), (0.476935252, 3.164258644), (0, 3.11555832))
            ThreePointArc((0, 3.11555832), (-0.476935252, 3.164258644), (-0.918326936, 2.977142806))
        make_face()
        with BuildLine():
            ThreePointArc((-0.820975398, 2.661536871), (-1.258262843, 2.612809717), (-1.569003529, 2.301305509))
            ThreePointArc((-1.569003529, 2.301305509), (-1.97250094, 2.125850428), (-2.177618811, 1.736593053))
            ThreePointArc((-2.177618811, 1.736593053), (-2.511473671, 1.45), (-2.592743105, 1.017576684))
            ThreePointArc((-2.592743105, 1.017576684), (-2.827290945, 0.645310708), (-2.777490797, 0.20814416))
            ThreePointArc((-2.777490797, 0.20814416), (-2.891891012, -0.216717271), (-2.715446242, -0.619782885))
            ThreePointArc((-2.715446242, -0.619782885), (-2.699533871, -1.059488971), (-2.412122372, -1.392639501))
            ThreePointArc((-2.412122372, -1.392639501), (-2.267311299, -1.808120425), (-1.894470844, -2.041753986))
            ThreePointArc((-1.894470844, -2.041753986), (-1.633628168, -2.396092446), (-1.208487268, -2.509449669))
            ThreePointArc((-1.208487268, -2.509449669), (-0.854790006, -2.771161137), (-0.415124294, -2.754169737))
            ThreePointArc((-0.415124294, -2.754169737), (0, -2.9), (0.415124294, -2.754169737))
            ThreePointArc((0.415124294, -2.754169737), (0.854790006, -2.771161137), (1.208487268, -2.509449669))
            ThreePointArc((1.208487268, -2.509449669), (1.633628168, -2.396092446), (1.894470844, -2.041753986))
            ThreePointArc((1.894470844, -2.041753986), (2.267311299, -1.808120425), (2.412122372, -1.392639501))
            ThreePointArc((2.412122372, -1.392639501), (2.699533871, -1.059488971), (2.715446242, -0.619782885))
            ThreePointArc((2.715446242, -0.619782885), (2.891891012, -0.216717271), (2.777490797, 0.20814416))
            ThreePointArc((2.777490797, 0.20814416), (2.827290945, 0.645310708), (2.592743105, 1.017576684))
            ThreePointArc((2.592743105, 1.017576684), (2.511473671, 1.45), (2.177618811, 1.736593053))
            ThreePointArc((2.177618811, 1.736593053), (1.97250094, 2.125850428), (1.569003529, 2.301305509))
            ThreePointArc((1.569003529, 2.301305509), (1.258262843, 2.612809717), (0.820975398, 2.661536871))
            ThreePointArc((0.820975398, 2.661536871), (0.432222572, 2.867609396), (0, 2.785279002))
            ThreePointArc((0, 2.785279002), (-0.432222572, 2.867609396), (-0.820975398, 2.661536871))
        make_face(mode=Mode.SUBTRACT)
    extrude(amount=BOSS_EXTRUDE6_DEPTH)


solid = part.part
